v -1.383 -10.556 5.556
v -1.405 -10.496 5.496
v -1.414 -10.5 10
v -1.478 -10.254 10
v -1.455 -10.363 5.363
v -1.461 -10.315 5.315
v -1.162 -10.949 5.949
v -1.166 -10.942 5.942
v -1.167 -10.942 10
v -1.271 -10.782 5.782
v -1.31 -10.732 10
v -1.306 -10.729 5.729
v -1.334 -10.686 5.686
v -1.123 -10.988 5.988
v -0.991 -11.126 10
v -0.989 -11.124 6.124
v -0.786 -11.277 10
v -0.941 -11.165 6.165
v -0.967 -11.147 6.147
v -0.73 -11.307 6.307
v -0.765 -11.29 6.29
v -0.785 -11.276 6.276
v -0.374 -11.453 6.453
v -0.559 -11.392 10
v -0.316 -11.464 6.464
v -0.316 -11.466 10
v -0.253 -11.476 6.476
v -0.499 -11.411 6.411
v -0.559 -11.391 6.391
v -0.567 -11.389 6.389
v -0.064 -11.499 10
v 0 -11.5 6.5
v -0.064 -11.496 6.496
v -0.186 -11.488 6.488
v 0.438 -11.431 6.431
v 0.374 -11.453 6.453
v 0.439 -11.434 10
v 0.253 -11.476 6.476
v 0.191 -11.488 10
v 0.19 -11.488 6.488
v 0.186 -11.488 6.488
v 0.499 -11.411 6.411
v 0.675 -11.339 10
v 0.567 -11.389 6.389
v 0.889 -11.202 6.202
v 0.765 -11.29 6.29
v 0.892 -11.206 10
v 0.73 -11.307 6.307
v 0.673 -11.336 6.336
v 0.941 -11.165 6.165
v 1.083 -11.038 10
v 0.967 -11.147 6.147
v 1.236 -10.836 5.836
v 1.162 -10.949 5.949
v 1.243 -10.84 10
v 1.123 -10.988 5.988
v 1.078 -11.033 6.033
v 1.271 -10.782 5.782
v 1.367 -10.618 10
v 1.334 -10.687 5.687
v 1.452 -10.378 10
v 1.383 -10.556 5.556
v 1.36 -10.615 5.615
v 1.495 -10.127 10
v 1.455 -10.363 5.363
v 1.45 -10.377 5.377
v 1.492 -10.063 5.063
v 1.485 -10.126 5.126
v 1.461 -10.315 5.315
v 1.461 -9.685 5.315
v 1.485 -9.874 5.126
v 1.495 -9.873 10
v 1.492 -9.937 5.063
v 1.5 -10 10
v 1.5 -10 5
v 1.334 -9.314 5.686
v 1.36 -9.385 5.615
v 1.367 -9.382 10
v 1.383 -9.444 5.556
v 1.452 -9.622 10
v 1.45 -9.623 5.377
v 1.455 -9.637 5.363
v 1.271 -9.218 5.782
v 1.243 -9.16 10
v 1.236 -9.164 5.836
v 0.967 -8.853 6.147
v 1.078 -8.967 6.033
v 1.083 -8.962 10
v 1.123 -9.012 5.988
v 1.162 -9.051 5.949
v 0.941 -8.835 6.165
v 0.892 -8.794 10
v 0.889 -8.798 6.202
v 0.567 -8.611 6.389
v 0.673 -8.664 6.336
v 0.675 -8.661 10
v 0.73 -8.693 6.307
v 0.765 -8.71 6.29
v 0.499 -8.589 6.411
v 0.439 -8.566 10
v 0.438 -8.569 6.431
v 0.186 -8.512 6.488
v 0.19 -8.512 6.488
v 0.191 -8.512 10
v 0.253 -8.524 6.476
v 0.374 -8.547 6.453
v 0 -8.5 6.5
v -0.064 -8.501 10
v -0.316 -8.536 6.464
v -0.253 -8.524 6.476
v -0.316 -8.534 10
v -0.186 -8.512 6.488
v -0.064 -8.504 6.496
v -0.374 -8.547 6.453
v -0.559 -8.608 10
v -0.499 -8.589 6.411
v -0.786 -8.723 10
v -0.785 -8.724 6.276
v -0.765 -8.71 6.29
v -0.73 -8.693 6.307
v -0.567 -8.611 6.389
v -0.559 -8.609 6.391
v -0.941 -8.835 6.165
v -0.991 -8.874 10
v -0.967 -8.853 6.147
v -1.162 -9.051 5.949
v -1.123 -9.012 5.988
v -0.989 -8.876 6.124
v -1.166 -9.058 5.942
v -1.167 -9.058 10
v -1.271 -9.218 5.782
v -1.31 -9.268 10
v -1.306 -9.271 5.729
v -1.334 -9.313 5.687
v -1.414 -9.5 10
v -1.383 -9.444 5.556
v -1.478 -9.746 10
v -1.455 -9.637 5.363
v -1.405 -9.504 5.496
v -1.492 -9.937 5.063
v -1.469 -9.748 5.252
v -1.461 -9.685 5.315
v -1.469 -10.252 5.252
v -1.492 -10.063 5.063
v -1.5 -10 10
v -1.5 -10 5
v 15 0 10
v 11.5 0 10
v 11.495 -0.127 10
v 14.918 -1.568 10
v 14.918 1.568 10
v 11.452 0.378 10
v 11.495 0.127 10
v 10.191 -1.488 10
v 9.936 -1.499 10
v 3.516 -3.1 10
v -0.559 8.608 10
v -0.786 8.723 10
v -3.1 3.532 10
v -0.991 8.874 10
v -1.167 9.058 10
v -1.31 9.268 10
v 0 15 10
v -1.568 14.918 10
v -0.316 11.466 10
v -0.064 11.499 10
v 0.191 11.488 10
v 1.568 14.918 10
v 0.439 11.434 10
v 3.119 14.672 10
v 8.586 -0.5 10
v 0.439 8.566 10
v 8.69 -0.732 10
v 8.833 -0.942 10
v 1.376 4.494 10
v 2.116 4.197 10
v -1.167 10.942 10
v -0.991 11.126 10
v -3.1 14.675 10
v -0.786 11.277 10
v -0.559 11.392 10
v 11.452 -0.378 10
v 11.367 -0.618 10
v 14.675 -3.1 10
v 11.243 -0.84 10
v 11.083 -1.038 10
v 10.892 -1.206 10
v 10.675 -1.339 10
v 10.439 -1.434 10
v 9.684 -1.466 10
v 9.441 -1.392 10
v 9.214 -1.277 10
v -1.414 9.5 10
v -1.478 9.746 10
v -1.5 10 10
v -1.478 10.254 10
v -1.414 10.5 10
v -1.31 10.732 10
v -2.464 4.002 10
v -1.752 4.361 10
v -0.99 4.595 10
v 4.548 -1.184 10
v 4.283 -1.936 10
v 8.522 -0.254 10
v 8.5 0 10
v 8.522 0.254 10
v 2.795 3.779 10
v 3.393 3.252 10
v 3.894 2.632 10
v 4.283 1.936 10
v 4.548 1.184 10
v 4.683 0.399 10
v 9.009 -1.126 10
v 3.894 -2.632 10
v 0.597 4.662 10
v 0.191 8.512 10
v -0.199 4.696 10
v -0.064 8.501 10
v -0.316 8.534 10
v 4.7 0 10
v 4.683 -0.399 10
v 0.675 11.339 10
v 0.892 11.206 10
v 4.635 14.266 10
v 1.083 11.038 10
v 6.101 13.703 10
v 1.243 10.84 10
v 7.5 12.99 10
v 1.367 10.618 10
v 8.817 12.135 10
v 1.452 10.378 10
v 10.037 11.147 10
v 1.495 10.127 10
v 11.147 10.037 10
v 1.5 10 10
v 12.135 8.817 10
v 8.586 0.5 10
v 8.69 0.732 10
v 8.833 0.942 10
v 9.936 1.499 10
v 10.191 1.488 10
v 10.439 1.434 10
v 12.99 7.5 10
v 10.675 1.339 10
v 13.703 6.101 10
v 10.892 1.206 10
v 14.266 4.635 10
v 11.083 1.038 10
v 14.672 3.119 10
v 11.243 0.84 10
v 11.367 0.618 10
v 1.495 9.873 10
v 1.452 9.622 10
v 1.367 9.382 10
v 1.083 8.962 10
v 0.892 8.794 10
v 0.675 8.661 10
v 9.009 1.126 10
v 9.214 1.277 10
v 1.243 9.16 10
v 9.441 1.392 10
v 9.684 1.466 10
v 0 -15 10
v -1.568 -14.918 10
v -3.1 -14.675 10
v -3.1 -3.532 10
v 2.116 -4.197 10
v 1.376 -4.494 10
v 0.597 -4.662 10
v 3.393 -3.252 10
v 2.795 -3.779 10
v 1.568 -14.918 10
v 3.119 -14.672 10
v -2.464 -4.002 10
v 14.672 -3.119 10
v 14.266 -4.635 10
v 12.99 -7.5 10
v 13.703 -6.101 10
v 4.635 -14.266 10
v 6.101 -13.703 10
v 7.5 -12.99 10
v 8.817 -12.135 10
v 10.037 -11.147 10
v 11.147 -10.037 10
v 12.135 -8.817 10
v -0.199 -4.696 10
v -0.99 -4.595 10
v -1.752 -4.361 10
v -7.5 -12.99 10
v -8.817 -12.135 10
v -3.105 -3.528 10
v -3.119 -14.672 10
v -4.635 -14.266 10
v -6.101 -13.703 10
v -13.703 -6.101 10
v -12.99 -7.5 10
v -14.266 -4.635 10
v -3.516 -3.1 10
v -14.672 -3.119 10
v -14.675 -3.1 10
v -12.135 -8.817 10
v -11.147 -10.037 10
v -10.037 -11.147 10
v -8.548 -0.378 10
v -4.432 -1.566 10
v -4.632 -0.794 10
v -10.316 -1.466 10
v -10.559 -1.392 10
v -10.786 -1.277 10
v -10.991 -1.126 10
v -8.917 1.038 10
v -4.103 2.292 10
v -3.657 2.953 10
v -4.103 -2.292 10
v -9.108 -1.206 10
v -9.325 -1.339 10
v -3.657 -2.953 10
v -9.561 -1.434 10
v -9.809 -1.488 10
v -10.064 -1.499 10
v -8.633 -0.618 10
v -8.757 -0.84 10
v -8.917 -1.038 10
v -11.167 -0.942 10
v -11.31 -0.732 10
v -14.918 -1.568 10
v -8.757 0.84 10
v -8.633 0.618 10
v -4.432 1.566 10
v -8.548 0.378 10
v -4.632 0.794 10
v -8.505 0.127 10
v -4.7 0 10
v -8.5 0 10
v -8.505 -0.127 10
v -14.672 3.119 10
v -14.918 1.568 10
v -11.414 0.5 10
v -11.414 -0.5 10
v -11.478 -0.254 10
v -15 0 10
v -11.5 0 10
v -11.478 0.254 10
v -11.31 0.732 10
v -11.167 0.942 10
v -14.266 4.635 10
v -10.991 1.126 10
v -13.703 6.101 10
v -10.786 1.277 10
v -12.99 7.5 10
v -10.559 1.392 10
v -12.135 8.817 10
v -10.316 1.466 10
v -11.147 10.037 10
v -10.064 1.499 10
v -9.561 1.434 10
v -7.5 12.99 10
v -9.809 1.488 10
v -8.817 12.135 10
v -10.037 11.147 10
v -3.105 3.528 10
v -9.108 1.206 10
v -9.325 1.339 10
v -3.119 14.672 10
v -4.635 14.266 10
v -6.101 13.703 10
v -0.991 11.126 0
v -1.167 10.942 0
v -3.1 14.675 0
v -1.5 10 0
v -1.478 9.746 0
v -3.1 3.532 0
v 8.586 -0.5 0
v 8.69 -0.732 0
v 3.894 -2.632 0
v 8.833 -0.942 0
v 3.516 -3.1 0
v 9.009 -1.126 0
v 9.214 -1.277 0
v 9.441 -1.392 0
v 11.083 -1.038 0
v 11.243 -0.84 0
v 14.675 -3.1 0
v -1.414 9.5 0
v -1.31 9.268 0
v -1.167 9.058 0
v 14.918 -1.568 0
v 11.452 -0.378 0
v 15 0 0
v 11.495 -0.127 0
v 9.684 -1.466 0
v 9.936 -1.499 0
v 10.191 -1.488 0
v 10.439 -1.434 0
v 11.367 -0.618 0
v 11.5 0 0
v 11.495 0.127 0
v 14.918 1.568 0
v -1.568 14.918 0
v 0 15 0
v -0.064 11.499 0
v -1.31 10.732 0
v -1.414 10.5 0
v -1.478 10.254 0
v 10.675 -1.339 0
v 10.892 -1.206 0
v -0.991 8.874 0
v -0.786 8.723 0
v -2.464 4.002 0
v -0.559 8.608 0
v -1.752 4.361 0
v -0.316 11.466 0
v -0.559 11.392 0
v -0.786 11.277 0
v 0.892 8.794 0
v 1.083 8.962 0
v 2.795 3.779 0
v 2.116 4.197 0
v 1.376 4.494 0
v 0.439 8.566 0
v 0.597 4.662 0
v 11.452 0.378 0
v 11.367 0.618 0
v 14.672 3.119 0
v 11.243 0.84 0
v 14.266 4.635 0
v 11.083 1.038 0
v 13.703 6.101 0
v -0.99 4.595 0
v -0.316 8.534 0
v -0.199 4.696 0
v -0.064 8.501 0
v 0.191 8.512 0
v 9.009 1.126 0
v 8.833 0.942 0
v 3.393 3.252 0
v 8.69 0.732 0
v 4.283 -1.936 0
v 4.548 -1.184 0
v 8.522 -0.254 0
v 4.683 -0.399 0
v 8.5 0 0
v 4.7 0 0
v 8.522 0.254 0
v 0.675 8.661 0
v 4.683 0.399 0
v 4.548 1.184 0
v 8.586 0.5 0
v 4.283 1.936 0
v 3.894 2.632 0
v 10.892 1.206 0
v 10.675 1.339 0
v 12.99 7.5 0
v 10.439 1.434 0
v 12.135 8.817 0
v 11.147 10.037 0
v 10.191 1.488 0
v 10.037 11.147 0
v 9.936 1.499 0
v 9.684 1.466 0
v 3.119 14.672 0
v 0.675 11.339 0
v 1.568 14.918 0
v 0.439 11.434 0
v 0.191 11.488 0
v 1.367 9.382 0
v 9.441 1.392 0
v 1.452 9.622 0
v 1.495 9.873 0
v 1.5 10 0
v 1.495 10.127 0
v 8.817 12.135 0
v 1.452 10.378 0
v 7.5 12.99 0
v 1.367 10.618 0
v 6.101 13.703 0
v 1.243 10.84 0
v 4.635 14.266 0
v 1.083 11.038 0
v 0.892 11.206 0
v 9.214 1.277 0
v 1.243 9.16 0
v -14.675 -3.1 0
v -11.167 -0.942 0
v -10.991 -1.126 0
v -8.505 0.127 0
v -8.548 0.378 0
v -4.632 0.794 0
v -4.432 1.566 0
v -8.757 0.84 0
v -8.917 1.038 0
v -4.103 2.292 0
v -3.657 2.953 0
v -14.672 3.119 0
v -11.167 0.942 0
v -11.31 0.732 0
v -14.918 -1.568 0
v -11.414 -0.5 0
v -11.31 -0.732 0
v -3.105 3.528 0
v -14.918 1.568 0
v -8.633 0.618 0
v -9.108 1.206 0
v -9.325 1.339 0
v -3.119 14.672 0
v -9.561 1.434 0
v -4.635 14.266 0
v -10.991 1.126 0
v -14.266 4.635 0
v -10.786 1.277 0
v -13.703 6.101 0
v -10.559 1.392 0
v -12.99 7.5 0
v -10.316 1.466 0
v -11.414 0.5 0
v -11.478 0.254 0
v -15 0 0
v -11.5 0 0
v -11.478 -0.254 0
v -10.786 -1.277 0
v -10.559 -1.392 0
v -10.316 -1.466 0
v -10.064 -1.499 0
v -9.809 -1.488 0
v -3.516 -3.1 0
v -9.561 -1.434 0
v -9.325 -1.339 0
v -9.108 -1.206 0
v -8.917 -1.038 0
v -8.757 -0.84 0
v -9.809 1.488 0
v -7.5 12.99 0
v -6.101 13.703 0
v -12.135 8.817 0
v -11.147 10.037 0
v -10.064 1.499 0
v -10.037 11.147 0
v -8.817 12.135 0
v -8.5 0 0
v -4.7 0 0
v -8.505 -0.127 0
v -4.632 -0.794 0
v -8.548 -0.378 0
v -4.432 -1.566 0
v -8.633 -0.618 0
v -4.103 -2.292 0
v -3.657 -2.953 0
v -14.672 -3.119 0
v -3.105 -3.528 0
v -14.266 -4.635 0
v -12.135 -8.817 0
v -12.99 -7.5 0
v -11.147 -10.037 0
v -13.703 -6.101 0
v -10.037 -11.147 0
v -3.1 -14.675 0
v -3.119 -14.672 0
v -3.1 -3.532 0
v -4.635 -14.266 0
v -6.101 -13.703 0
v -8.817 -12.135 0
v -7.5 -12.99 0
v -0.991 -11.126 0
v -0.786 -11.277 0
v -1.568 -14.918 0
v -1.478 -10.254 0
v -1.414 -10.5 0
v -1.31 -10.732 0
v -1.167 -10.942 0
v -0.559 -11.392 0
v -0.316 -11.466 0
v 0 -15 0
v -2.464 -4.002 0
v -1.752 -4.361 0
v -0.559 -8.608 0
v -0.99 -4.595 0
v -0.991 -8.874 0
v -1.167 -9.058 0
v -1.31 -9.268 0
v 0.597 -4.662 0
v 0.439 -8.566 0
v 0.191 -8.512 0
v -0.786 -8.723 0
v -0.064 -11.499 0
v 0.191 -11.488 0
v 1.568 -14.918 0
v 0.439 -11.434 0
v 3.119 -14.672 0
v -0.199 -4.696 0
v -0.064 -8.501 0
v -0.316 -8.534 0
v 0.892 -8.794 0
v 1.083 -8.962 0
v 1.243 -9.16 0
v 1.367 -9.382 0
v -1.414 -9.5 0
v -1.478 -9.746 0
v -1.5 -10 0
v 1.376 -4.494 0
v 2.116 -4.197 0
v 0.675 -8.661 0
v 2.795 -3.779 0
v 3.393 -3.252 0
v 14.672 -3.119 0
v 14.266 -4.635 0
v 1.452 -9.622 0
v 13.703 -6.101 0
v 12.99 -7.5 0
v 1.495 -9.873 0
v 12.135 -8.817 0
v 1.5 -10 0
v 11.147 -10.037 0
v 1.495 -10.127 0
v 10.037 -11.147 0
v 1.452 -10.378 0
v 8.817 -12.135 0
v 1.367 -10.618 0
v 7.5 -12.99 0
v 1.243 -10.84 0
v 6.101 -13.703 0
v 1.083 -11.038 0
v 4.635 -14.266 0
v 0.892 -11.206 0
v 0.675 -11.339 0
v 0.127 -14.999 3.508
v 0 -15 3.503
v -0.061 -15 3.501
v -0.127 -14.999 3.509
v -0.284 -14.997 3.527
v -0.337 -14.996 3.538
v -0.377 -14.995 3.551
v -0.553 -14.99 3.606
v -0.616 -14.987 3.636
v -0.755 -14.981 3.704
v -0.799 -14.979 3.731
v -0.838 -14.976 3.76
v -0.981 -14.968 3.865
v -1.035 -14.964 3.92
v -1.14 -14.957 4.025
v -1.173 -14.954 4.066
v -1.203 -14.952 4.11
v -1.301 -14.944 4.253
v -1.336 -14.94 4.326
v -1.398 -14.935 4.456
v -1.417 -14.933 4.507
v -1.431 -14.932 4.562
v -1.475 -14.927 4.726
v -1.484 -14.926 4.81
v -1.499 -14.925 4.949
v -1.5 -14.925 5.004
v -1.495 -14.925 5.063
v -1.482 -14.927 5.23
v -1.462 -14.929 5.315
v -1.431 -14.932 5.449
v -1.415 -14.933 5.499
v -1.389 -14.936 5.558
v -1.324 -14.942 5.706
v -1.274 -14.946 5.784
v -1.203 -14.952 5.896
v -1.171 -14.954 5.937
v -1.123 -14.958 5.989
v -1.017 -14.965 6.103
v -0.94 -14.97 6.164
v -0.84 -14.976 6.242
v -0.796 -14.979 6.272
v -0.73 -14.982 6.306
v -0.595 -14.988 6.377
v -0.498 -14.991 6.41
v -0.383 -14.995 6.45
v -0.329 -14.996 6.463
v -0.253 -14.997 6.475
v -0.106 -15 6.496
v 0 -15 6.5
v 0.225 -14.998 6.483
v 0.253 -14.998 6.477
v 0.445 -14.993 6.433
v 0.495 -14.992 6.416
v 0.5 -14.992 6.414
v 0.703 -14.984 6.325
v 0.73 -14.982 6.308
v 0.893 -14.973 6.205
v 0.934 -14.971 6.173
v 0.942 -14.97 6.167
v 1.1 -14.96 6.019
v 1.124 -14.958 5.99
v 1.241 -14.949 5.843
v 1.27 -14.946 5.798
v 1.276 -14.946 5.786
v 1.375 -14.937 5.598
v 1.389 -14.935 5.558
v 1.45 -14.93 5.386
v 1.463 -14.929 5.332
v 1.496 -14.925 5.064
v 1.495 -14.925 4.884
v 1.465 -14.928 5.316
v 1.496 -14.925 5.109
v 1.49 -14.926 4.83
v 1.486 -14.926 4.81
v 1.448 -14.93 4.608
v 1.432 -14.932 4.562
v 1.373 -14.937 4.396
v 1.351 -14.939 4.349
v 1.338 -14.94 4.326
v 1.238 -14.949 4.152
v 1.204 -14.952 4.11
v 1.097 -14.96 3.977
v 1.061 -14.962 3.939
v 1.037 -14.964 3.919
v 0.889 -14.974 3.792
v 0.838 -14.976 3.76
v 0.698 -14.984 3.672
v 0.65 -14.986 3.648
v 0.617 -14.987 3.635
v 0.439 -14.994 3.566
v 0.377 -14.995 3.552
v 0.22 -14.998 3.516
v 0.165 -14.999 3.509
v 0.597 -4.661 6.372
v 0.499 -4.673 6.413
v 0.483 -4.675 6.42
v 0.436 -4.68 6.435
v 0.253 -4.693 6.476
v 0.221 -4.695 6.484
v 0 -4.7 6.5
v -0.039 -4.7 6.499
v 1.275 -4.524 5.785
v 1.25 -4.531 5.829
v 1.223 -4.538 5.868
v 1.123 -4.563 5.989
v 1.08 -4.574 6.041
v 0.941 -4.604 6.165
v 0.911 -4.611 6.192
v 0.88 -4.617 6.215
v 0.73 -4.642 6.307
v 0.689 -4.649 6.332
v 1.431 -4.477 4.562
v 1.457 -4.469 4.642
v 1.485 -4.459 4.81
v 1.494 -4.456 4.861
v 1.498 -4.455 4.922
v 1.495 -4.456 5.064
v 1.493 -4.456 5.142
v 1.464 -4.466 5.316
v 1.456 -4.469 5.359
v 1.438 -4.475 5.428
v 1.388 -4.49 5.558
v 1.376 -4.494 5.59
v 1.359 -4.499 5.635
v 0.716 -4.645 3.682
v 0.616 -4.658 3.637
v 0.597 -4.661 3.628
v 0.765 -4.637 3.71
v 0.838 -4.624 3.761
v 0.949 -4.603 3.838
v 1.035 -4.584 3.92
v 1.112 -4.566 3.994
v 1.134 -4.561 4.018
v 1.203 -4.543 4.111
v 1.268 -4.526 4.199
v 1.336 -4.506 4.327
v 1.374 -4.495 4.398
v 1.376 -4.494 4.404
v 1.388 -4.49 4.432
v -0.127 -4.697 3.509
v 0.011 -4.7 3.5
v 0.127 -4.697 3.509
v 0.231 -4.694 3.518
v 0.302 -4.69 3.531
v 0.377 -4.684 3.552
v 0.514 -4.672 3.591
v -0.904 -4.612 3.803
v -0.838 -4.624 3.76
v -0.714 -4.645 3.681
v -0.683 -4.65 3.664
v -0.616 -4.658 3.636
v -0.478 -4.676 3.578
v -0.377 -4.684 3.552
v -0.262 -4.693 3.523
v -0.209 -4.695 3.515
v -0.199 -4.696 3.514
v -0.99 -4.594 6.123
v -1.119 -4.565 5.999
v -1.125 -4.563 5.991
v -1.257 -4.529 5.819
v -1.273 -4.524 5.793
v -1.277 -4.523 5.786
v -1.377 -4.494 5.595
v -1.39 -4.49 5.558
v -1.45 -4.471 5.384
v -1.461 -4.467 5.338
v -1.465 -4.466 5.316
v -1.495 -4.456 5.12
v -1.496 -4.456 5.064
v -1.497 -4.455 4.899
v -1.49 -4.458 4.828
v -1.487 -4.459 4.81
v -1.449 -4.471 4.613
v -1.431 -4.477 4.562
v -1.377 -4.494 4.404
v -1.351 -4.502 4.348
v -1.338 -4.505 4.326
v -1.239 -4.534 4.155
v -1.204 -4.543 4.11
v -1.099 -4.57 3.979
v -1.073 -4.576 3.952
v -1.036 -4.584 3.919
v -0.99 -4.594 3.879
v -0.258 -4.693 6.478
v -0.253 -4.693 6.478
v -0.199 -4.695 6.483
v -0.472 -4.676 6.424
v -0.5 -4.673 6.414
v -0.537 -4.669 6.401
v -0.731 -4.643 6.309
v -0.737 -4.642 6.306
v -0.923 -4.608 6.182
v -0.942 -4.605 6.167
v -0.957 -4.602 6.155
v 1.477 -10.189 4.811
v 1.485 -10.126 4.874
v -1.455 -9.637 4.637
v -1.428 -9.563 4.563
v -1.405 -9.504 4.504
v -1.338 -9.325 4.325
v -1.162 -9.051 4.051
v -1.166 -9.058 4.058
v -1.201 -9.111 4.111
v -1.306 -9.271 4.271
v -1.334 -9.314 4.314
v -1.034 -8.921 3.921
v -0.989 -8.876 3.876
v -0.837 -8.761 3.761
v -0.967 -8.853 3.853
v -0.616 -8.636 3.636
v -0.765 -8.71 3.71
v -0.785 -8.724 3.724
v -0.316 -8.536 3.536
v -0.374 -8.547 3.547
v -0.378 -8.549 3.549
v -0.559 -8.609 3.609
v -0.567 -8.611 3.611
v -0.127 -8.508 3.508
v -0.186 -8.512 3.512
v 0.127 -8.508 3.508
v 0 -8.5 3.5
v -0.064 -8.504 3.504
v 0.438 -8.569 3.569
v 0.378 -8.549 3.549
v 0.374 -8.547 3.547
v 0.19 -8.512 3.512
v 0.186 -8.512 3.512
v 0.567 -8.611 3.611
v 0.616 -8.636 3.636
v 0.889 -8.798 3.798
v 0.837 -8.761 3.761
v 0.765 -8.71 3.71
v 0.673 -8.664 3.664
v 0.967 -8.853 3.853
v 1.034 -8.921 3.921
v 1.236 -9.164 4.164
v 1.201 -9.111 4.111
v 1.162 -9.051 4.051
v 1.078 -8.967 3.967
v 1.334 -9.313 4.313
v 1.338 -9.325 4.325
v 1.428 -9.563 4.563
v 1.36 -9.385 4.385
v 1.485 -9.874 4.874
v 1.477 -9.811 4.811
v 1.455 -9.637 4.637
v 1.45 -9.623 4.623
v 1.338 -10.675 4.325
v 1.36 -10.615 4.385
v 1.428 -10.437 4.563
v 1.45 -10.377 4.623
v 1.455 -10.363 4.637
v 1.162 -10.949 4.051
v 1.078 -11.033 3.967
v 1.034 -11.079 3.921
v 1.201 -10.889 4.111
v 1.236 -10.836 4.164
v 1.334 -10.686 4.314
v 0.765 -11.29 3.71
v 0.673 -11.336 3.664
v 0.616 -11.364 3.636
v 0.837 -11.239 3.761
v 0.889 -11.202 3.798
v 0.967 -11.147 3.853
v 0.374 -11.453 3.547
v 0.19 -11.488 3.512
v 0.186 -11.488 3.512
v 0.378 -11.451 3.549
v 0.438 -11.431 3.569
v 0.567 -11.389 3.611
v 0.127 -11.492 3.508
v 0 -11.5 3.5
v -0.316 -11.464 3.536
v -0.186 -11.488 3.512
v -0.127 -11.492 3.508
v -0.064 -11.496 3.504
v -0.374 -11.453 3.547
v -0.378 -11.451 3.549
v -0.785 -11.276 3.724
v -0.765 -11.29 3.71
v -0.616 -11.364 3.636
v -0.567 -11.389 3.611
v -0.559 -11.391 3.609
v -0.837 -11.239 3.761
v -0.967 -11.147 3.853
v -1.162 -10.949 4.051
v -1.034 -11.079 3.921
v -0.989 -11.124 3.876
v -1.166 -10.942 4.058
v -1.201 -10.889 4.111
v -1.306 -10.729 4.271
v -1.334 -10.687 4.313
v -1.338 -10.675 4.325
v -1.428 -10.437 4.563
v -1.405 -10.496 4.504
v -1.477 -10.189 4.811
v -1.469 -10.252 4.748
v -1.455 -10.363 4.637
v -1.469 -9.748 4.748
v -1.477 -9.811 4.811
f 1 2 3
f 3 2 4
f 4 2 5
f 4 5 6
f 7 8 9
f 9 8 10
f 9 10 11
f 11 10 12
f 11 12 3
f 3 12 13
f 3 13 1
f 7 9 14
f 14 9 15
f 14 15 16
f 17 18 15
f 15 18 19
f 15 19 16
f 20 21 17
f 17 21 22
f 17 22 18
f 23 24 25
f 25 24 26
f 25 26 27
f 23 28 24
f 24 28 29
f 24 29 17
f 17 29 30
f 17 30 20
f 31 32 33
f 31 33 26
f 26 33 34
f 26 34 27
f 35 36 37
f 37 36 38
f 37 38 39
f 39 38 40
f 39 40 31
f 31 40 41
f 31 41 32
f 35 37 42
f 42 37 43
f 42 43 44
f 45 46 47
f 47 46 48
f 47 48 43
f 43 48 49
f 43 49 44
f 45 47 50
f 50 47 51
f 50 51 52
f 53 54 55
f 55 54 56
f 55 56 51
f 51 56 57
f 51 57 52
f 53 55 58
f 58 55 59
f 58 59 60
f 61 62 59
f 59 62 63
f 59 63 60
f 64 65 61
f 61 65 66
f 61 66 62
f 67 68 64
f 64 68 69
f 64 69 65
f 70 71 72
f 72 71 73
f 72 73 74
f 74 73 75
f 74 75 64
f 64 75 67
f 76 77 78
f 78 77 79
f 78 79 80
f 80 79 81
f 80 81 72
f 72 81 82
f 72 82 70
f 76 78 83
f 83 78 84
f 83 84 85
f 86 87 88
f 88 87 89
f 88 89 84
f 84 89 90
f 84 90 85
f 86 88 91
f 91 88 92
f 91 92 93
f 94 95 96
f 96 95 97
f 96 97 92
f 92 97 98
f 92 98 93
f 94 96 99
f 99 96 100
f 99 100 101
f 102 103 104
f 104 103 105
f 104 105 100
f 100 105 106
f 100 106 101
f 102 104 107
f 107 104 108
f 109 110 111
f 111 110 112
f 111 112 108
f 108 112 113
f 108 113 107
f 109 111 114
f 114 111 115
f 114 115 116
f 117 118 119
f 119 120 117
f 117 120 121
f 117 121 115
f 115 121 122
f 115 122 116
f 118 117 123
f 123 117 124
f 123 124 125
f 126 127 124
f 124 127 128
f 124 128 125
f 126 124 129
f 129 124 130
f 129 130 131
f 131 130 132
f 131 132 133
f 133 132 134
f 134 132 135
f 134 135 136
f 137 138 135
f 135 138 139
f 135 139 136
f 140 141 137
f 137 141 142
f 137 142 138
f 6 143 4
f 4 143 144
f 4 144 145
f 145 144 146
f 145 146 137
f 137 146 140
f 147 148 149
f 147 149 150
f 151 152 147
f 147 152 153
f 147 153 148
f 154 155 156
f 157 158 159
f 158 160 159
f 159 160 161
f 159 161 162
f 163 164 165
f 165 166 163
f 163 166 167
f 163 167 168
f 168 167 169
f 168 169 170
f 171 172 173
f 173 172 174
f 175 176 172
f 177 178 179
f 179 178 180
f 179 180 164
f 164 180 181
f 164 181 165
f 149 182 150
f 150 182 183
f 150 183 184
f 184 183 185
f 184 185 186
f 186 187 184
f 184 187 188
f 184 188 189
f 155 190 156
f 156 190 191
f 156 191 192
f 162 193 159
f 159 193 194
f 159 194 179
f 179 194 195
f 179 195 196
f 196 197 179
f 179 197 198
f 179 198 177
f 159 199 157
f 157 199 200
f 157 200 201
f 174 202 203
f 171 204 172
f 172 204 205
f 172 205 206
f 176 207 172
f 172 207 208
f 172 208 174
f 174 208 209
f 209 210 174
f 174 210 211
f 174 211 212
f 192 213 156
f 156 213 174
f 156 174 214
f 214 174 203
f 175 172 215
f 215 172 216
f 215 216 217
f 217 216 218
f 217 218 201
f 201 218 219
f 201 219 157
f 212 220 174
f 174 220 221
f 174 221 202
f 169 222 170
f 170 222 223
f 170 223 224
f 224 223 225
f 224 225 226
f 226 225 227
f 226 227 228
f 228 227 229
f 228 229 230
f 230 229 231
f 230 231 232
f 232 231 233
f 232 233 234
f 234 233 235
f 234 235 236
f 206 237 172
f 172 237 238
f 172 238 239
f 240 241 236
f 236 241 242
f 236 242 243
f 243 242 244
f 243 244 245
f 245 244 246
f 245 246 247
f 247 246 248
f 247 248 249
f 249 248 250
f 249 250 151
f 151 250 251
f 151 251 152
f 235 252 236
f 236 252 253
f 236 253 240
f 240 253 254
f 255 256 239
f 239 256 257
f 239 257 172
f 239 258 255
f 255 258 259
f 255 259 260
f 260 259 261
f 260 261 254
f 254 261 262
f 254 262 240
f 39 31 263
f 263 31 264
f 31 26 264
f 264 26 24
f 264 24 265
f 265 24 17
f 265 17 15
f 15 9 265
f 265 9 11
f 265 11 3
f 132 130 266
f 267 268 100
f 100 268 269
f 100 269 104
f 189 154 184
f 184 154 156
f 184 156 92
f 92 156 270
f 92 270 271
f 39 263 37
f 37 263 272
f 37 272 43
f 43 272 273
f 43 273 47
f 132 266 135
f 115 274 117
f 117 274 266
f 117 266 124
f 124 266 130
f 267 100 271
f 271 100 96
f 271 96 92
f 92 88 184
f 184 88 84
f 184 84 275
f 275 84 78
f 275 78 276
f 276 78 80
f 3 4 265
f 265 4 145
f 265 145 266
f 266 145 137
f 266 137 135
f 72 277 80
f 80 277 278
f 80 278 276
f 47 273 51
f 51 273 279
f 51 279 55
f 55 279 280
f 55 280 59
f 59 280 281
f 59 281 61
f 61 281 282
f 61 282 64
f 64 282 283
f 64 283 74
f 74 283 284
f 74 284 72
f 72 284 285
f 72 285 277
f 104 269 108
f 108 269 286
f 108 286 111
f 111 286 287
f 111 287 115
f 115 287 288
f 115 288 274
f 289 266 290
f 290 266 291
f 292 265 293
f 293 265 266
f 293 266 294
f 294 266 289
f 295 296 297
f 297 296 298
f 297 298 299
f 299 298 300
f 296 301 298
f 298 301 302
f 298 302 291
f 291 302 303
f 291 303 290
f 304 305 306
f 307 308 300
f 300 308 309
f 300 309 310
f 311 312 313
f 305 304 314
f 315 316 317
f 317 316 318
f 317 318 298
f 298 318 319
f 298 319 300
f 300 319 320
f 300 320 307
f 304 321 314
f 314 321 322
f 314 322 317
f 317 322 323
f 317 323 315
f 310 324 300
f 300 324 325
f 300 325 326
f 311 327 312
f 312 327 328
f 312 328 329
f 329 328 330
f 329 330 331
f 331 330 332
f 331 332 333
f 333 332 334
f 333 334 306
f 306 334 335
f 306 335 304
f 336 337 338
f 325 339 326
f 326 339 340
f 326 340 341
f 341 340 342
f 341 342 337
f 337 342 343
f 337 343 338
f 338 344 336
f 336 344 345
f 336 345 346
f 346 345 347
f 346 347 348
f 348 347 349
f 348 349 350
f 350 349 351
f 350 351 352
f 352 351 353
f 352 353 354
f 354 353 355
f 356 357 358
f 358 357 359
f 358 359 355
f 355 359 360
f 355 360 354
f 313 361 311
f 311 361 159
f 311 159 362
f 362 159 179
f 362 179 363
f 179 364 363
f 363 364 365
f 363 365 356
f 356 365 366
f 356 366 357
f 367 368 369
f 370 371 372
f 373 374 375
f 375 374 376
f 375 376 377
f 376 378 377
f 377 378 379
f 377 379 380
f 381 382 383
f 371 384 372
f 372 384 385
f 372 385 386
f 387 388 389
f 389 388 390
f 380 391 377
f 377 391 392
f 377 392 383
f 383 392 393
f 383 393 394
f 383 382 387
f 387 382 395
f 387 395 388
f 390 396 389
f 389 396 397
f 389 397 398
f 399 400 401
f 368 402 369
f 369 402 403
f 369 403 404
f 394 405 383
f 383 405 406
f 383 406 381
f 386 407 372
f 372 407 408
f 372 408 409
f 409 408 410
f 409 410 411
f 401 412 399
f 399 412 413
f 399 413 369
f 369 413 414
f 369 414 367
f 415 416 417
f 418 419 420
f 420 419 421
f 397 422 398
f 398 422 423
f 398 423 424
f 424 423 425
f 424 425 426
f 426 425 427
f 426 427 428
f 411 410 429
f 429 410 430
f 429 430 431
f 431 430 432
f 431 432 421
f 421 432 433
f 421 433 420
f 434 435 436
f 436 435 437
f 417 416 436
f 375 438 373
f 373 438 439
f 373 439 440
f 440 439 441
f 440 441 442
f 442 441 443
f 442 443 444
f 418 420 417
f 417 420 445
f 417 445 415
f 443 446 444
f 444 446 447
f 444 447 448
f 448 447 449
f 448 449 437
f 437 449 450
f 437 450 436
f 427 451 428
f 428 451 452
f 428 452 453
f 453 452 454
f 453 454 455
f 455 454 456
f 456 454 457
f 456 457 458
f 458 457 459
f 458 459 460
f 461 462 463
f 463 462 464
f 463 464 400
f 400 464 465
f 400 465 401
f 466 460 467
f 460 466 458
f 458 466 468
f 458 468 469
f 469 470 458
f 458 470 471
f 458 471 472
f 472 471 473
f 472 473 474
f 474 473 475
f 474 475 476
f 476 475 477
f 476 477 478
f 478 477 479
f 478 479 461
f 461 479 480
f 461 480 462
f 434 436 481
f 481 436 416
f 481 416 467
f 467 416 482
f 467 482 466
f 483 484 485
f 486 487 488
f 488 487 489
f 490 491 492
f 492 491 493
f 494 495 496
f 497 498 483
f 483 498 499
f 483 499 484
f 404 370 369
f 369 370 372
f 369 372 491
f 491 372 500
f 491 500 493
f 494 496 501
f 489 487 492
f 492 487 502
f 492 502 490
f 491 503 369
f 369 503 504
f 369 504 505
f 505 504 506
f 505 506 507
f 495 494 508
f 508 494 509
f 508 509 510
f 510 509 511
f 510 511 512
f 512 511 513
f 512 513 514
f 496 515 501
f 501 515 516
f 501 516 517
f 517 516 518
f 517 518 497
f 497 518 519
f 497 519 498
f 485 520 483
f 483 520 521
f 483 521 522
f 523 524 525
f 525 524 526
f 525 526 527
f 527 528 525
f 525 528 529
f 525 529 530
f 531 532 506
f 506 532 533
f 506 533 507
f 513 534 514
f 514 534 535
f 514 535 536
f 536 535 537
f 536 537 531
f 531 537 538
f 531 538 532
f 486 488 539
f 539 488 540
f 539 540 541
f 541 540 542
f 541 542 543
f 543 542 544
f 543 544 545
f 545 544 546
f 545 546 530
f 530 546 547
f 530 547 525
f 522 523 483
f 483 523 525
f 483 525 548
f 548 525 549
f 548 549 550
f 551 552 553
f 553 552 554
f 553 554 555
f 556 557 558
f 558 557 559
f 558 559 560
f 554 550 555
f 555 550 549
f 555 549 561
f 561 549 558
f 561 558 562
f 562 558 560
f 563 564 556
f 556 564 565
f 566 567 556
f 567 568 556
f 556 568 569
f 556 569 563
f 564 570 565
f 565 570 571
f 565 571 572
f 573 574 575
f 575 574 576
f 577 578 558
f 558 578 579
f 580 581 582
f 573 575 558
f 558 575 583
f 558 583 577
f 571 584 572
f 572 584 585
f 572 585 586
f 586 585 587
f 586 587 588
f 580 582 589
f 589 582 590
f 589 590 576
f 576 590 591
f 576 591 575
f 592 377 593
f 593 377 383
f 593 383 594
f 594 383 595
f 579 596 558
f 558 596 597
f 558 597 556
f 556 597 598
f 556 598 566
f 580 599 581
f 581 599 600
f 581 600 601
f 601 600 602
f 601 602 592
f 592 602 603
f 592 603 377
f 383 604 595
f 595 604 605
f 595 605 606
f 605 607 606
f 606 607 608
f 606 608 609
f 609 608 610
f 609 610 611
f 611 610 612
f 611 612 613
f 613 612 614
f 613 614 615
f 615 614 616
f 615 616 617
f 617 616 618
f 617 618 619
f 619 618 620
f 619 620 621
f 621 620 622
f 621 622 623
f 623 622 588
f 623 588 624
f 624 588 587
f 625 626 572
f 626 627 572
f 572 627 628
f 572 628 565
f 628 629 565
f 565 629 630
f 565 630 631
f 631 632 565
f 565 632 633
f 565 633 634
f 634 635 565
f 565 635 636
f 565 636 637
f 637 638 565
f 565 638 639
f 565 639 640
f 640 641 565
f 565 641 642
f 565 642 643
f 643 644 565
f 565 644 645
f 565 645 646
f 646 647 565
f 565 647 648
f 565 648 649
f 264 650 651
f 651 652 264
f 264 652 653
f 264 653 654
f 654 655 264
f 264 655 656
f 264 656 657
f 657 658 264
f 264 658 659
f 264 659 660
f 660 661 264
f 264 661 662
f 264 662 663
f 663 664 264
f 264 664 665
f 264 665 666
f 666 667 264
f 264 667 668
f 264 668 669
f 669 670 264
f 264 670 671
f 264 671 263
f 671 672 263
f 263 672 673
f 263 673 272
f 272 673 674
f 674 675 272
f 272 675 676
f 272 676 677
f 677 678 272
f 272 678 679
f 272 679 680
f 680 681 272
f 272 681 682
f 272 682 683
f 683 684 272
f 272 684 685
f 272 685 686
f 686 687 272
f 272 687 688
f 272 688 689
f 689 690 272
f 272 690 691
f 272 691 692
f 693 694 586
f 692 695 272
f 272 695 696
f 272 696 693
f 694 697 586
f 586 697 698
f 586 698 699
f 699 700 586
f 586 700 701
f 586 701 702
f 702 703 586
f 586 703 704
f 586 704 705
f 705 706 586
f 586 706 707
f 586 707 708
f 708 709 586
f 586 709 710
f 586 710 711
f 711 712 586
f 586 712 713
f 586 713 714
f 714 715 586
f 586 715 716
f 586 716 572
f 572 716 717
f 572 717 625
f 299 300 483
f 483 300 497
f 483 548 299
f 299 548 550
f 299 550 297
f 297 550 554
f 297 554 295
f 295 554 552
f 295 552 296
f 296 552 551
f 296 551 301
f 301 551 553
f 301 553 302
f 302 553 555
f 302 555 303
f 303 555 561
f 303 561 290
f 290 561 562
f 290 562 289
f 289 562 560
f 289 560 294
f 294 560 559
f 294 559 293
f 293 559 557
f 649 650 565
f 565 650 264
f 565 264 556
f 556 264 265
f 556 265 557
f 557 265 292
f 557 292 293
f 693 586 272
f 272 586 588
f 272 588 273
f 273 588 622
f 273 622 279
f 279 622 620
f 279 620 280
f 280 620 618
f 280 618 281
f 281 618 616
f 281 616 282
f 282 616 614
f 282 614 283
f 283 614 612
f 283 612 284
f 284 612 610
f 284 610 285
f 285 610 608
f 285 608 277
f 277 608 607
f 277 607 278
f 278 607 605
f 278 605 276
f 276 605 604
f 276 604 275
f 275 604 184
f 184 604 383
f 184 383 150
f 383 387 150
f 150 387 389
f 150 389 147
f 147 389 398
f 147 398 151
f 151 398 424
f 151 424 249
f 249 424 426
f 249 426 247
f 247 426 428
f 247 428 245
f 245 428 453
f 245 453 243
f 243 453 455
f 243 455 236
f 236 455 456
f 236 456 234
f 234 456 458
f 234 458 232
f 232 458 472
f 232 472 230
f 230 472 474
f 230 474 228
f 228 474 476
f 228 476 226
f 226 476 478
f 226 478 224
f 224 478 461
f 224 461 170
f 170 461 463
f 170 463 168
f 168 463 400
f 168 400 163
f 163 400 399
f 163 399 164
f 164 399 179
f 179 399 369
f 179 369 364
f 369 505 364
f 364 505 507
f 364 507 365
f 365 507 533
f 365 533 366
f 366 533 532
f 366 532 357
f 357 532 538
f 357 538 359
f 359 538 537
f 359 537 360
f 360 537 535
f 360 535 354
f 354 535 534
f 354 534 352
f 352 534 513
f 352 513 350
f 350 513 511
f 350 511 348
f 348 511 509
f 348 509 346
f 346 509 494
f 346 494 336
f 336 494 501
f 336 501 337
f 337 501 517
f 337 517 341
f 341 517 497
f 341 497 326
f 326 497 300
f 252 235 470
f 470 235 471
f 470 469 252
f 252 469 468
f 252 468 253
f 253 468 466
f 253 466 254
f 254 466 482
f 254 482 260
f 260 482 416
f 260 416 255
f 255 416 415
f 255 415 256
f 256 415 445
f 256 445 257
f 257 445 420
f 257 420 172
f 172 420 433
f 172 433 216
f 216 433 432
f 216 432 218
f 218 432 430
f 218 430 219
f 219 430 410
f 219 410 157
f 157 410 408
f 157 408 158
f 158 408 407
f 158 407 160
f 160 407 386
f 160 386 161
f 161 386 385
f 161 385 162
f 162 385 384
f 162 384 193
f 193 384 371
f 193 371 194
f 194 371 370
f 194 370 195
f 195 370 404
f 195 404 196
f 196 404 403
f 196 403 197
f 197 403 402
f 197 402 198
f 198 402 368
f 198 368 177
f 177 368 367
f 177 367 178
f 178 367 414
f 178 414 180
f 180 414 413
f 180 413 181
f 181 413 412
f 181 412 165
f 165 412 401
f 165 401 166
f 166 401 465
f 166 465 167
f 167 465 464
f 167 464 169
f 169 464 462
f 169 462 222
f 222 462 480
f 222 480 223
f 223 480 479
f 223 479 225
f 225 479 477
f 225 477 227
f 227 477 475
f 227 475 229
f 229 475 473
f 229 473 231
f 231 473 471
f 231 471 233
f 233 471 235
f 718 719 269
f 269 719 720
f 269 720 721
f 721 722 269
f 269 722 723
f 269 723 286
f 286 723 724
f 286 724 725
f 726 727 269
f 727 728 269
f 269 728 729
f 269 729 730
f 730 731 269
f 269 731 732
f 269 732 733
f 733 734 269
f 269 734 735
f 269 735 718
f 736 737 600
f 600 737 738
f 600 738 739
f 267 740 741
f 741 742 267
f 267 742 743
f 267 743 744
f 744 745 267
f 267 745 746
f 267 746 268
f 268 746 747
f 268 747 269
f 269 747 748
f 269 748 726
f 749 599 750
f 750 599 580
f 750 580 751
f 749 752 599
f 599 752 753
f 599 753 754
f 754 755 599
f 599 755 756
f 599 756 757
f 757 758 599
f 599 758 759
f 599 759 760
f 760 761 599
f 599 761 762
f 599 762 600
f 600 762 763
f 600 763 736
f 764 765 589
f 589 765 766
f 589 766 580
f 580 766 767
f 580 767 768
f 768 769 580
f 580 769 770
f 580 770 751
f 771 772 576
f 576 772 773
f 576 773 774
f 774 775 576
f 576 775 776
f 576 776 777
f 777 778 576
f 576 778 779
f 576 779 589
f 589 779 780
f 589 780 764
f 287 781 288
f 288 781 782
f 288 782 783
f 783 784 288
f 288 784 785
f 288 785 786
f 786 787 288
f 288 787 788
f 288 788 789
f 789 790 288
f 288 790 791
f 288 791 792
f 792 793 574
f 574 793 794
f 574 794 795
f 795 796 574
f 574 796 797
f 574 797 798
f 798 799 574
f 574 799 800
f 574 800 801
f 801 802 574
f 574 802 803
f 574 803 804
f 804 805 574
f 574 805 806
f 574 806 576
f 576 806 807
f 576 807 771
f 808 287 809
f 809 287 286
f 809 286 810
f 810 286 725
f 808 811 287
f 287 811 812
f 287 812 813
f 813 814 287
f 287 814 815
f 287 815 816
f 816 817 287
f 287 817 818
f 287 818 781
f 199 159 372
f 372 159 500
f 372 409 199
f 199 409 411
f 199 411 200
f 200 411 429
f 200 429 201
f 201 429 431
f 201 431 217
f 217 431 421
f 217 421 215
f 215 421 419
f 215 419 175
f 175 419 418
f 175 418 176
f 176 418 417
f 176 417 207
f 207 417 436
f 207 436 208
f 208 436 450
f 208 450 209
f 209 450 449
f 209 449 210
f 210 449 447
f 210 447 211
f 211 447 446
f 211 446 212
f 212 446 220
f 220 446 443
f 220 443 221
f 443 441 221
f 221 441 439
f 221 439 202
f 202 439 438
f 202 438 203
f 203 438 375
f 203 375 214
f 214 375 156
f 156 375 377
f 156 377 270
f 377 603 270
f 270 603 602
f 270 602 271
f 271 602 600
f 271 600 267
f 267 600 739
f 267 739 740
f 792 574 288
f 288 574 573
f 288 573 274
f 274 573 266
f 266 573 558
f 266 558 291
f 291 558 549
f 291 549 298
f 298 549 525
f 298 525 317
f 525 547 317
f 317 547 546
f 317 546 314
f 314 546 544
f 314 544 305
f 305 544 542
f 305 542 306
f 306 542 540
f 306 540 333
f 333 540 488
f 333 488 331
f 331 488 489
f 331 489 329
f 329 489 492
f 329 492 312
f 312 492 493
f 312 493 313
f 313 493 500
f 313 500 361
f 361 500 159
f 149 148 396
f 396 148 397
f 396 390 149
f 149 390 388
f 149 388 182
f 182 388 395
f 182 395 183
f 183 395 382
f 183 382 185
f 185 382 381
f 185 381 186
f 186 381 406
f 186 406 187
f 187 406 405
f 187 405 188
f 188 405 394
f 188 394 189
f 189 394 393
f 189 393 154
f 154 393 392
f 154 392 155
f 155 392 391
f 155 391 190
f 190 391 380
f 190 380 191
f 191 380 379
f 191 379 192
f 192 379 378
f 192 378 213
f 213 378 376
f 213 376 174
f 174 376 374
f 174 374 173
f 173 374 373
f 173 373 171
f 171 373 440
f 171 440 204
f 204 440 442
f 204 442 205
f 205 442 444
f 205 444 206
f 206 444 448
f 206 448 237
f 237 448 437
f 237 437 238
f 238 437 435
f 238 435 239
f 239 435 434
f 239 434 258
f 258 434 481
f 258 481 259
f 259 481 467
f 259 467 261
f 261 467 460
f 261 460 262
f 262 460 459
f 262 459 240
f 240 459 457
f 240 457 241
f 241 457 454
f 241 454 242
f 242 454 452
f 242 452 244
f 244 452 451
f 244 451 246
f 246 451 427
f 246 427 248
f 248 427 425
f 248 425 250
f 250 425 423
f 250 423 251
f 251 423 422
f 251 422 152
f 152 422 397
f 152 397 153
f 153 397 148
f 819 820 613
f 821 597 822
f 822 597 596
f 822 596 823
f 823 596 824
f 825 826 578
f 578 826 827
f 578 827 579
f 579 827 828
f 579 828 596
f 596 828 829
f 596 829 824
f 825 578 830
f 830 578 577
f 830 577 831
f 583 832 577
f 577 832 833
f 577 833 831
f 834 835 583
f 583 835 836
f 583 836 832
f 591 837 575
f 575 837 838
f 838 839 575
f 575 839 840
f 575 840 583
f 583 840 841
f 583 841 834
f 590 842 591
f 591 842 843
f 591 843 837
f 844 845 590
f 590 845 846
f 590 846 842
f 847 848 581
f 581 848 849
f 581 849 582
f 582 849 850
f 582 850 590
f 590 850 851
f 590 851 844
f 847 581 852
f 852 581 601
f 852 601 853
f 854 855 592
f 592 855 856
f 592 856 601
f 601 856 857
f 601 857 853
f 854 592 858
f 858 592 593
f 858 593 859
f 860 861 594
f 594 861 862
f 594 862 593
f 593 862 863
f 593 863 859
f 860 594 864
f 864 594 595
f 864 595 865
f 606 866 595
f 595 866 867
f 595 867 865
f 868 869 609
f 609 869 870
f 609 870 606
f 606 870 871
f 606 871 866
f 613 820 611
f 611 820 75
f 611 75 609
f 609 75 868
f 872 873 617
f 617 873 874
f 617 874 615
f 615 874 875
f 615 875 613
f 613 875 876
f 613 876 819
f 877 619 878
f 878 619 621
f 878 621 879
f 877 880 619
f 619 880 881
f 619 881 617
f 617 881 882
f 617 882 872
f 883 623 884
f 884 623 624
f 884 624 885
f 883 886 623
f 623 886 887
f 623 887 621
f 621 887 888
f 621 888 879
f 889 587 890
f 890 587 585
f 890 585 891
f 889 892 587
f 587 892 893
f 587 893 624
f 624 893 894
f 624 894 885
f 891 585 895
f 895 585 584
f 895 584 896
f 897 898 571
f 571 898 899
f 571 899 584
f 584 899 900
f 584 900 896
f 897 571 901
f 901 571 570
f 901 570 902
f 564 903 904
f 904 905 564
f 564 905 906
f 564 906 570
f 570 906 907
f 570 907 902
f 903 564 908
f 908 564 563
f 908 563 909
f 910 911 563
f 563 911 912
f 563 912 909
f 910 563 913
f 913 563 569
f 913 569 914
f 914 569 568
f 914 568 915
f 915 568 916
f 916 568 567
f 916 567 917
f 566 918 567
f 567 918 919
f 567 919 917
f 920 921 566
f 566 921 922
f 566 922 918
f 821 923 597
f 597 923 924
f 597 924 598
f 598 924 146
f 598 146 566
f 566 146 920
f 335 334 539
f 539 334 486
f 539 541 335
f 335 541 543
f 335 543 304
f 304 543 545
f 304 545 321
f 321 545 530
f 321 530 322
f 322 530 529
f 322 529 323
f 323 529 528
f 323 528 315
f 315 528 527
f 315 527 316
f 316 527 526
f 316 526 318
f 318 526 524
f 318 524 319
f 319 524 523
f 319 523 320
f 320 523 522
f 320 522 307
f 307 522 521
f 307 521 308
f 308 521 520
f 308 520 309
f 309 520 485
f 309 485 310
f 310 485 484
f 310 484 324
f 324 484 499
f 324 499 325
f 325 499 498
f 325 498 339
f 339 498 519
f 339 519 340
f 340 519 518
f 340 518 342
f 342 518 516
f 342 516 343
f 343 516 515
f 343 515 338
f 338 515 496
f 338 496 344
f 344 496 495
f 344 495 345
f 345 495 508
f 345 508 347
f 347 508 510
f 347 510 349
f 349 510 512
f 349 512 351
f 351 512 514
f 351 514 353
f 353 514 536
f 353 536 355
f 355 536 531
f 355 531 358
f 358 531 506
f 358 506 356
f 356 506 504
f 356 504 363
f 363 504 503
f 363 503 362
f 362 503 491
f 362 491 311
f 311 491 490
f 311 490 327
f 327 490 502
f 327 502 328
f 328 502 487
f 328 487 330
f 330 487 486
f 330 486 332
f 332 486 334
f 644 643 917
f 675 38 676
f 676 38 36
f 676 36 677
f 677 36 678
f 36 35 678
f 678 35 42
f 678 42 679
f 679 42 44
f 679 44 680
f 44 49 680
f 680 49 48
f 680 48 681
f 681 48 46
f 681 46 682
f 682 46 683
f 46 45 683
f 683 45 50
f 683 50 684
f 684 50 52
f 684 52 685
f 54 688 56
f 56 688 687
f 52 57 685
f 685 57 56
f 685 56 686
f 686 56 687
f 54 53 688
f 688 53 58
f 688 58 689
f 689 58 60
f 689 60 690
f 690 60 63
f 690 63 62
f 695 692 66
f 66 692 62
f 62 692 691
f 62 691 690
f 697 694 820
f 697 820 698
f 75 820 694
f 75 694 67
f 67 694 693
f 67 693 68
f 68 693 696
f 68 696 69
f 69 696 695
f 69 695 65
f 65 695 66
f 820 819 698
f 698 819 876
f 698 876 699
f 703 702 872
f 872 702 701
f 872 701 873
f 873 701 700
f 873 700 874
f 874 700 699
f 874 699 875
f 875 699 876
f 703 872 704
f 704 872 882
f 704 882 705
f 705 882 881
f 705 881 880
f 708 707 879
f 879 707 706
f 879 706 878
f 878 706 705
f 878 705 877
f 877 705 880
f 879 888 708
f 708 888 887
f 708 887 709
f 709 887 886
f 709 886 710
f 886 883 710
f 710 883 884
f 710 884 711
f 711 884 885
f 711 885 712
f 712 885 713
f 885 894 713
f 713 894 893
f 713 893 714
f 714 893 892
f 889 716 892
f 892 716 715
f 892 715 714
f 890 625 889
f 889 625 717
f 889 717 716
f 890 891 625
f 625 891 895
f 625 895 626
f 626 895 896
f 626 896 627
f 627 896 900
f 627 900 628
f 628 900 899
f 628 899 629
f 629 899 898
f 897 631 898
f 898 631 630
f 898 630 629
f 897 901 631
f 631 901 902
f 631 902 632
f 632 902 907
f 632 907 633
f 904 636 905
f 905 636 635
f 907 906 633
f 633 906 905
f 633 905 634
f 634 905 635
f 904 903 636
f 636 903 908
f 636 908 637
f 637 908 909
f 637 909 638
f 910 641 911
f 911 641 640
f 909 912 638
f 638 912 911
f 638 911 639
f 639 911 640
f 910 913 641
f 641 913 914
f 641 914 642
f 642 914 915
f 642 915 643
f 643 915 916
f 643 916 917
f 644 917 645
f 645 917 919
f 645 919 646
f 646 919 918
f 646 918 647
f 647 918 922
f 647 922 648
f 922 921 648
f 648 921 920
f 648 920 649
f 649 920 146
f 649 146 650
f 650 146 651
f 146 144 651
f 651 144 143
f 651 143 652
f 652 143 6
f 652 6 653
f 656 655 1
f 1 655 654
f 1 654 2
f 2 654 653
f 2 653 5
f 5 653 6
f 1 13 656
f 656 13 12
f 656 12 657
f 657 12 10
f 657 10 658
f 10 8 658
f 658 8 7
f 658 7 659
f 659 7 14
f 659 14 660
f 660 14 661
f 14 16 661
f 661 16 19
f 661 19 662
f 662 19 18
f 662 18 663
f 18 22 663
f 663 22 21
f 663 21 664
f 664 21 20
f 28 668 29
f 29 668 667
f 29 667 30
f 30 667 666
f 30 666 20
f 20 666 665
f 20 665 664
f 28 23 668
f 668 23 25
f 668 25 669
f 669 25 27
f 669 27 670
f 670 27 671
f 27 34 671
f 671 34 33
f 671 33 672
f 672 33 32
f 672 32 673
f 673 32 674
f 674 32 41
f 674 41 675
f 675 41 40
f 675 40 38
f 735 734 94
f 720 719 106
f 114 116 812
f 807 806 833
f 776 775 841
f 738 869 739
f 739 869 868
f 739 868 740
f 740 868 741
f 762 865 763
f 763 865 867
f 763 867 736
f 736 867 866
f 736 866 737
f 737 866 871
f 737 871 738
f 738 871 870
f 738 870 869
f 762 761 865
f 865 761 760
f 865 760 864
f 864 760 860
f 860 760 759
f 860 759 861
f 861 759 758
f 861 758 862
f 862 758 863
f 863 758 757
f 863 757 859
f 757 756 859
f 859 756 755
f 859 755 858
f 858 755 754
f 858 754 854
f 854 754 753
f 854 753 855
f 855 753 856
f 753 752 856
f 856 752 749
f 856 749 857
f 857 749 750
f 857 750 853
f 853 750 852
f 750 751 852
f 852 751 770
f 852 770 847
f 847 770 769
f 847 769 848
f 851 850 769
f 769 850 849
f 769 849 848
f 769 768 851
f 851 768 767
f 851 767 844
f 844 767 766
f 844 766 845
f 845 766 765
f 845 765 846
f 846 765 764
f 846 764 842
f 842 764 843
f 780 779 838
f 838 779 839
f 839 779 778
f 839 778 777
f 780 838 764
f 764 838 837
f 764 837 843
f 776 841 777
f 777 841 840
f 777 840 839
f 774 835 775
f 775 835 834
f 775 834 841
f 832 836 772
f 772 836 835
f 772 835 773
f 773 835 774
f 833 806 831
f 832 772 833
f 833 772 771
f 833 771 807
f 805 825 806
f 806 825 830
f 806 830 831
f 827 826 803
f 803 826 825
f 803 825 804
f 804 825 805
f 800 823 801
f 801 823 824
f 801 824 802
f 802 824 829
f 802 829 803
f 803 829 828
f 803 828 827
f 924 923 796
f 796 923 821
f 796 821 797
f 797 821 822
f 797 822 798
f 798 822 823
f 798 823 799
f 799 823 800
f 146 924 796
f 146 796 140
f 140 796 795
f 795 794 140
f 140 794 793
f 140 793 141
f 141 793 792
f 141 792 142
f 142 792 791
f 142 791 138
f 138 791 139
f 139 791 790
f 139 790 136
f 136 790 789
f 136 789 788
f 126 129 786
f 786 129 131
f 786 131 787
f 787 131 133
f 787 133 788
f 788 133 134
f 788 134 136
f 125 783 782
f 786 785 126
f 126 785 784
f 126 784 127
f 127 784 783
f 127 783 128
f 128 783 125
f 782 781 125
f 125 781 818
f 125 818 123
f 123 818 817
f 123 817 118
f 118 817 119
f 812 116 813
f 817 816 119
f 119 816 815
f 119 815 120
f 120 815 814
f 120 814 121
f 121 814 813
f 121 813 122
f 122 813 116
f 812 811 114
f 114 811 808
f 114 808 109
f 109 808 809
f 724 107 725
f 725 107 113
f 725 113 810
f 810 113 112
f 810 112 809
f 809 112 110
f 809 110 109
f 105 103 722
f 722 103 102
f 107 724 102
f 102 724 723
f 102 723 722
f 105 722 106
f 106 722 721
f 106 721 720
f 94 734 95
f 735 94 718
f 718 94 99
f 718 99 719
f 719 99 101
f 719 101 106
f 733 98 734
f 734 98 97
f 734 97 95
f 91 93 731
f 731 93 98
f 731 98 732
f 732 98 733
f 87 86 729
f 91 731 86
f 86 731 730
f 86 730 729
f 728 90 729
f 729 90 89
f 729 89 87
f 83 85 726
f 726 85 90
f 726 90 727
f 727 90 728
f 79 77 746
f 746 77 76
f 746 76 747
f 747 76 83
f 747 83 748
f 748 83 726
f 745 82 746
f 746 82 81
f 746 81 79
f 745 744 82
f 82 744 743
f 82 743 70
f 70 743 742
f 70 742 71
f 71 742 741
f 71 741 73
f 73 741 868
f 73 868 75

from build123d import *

# Parameters (mm, degrees)
SKETCH1_R           = 15
SKETCH1_R_2         = 1.5
SKETCH1_R_3         = 4.7
BOSS_EXTRUDE2_DEPTH = 10
SKETCH2_R           = 1.5
CUT_EXTRUDE1_DEPTH  = 35


with BuildPart() as part:
    # Sketch1 → Boss-Extrude2 (new body)
    with BuildSketch(Plane.XY):
        Circle(SKETCH1_R)
        with Locations((0, 10)):
            Circle(SKETCH1_R_2, mode=Mode.SUBTRACT)
        Circle(SKETCH1_R_3, mode=Mode.SUBTRACT)
        with Locations((10, 0)):
            Circle(SKETCH1_R_2, mode=Mode.SUBTRACT)
        with Locations((0, -10)):
            Circle(SKETCH1_R_2, mode=Mode.SUBTRACT)
        with Locations((-10, 0)):
            Circle(SKETCH1_R_2, mode=Mode.SUBTRACT)
    extrude(amount=BOSS_EXTRUDE2_DEPTH)

    # Sketch2 → Cut-Extrude1 (cut)
    with BuildSketch(Plane(origin=(0, 0, 0), x_dir=(1, 0, 0), z_dir=(0, 1, 0))):
        with Locations(Location((0, -5, 0), (0, 0, 270))):
            Circle(SKETCH2_R)
    extrude(amount=-CUT_EXTRUDE1_DEPTH, mode=Mode.SUBTRACT)


solid = part.part
